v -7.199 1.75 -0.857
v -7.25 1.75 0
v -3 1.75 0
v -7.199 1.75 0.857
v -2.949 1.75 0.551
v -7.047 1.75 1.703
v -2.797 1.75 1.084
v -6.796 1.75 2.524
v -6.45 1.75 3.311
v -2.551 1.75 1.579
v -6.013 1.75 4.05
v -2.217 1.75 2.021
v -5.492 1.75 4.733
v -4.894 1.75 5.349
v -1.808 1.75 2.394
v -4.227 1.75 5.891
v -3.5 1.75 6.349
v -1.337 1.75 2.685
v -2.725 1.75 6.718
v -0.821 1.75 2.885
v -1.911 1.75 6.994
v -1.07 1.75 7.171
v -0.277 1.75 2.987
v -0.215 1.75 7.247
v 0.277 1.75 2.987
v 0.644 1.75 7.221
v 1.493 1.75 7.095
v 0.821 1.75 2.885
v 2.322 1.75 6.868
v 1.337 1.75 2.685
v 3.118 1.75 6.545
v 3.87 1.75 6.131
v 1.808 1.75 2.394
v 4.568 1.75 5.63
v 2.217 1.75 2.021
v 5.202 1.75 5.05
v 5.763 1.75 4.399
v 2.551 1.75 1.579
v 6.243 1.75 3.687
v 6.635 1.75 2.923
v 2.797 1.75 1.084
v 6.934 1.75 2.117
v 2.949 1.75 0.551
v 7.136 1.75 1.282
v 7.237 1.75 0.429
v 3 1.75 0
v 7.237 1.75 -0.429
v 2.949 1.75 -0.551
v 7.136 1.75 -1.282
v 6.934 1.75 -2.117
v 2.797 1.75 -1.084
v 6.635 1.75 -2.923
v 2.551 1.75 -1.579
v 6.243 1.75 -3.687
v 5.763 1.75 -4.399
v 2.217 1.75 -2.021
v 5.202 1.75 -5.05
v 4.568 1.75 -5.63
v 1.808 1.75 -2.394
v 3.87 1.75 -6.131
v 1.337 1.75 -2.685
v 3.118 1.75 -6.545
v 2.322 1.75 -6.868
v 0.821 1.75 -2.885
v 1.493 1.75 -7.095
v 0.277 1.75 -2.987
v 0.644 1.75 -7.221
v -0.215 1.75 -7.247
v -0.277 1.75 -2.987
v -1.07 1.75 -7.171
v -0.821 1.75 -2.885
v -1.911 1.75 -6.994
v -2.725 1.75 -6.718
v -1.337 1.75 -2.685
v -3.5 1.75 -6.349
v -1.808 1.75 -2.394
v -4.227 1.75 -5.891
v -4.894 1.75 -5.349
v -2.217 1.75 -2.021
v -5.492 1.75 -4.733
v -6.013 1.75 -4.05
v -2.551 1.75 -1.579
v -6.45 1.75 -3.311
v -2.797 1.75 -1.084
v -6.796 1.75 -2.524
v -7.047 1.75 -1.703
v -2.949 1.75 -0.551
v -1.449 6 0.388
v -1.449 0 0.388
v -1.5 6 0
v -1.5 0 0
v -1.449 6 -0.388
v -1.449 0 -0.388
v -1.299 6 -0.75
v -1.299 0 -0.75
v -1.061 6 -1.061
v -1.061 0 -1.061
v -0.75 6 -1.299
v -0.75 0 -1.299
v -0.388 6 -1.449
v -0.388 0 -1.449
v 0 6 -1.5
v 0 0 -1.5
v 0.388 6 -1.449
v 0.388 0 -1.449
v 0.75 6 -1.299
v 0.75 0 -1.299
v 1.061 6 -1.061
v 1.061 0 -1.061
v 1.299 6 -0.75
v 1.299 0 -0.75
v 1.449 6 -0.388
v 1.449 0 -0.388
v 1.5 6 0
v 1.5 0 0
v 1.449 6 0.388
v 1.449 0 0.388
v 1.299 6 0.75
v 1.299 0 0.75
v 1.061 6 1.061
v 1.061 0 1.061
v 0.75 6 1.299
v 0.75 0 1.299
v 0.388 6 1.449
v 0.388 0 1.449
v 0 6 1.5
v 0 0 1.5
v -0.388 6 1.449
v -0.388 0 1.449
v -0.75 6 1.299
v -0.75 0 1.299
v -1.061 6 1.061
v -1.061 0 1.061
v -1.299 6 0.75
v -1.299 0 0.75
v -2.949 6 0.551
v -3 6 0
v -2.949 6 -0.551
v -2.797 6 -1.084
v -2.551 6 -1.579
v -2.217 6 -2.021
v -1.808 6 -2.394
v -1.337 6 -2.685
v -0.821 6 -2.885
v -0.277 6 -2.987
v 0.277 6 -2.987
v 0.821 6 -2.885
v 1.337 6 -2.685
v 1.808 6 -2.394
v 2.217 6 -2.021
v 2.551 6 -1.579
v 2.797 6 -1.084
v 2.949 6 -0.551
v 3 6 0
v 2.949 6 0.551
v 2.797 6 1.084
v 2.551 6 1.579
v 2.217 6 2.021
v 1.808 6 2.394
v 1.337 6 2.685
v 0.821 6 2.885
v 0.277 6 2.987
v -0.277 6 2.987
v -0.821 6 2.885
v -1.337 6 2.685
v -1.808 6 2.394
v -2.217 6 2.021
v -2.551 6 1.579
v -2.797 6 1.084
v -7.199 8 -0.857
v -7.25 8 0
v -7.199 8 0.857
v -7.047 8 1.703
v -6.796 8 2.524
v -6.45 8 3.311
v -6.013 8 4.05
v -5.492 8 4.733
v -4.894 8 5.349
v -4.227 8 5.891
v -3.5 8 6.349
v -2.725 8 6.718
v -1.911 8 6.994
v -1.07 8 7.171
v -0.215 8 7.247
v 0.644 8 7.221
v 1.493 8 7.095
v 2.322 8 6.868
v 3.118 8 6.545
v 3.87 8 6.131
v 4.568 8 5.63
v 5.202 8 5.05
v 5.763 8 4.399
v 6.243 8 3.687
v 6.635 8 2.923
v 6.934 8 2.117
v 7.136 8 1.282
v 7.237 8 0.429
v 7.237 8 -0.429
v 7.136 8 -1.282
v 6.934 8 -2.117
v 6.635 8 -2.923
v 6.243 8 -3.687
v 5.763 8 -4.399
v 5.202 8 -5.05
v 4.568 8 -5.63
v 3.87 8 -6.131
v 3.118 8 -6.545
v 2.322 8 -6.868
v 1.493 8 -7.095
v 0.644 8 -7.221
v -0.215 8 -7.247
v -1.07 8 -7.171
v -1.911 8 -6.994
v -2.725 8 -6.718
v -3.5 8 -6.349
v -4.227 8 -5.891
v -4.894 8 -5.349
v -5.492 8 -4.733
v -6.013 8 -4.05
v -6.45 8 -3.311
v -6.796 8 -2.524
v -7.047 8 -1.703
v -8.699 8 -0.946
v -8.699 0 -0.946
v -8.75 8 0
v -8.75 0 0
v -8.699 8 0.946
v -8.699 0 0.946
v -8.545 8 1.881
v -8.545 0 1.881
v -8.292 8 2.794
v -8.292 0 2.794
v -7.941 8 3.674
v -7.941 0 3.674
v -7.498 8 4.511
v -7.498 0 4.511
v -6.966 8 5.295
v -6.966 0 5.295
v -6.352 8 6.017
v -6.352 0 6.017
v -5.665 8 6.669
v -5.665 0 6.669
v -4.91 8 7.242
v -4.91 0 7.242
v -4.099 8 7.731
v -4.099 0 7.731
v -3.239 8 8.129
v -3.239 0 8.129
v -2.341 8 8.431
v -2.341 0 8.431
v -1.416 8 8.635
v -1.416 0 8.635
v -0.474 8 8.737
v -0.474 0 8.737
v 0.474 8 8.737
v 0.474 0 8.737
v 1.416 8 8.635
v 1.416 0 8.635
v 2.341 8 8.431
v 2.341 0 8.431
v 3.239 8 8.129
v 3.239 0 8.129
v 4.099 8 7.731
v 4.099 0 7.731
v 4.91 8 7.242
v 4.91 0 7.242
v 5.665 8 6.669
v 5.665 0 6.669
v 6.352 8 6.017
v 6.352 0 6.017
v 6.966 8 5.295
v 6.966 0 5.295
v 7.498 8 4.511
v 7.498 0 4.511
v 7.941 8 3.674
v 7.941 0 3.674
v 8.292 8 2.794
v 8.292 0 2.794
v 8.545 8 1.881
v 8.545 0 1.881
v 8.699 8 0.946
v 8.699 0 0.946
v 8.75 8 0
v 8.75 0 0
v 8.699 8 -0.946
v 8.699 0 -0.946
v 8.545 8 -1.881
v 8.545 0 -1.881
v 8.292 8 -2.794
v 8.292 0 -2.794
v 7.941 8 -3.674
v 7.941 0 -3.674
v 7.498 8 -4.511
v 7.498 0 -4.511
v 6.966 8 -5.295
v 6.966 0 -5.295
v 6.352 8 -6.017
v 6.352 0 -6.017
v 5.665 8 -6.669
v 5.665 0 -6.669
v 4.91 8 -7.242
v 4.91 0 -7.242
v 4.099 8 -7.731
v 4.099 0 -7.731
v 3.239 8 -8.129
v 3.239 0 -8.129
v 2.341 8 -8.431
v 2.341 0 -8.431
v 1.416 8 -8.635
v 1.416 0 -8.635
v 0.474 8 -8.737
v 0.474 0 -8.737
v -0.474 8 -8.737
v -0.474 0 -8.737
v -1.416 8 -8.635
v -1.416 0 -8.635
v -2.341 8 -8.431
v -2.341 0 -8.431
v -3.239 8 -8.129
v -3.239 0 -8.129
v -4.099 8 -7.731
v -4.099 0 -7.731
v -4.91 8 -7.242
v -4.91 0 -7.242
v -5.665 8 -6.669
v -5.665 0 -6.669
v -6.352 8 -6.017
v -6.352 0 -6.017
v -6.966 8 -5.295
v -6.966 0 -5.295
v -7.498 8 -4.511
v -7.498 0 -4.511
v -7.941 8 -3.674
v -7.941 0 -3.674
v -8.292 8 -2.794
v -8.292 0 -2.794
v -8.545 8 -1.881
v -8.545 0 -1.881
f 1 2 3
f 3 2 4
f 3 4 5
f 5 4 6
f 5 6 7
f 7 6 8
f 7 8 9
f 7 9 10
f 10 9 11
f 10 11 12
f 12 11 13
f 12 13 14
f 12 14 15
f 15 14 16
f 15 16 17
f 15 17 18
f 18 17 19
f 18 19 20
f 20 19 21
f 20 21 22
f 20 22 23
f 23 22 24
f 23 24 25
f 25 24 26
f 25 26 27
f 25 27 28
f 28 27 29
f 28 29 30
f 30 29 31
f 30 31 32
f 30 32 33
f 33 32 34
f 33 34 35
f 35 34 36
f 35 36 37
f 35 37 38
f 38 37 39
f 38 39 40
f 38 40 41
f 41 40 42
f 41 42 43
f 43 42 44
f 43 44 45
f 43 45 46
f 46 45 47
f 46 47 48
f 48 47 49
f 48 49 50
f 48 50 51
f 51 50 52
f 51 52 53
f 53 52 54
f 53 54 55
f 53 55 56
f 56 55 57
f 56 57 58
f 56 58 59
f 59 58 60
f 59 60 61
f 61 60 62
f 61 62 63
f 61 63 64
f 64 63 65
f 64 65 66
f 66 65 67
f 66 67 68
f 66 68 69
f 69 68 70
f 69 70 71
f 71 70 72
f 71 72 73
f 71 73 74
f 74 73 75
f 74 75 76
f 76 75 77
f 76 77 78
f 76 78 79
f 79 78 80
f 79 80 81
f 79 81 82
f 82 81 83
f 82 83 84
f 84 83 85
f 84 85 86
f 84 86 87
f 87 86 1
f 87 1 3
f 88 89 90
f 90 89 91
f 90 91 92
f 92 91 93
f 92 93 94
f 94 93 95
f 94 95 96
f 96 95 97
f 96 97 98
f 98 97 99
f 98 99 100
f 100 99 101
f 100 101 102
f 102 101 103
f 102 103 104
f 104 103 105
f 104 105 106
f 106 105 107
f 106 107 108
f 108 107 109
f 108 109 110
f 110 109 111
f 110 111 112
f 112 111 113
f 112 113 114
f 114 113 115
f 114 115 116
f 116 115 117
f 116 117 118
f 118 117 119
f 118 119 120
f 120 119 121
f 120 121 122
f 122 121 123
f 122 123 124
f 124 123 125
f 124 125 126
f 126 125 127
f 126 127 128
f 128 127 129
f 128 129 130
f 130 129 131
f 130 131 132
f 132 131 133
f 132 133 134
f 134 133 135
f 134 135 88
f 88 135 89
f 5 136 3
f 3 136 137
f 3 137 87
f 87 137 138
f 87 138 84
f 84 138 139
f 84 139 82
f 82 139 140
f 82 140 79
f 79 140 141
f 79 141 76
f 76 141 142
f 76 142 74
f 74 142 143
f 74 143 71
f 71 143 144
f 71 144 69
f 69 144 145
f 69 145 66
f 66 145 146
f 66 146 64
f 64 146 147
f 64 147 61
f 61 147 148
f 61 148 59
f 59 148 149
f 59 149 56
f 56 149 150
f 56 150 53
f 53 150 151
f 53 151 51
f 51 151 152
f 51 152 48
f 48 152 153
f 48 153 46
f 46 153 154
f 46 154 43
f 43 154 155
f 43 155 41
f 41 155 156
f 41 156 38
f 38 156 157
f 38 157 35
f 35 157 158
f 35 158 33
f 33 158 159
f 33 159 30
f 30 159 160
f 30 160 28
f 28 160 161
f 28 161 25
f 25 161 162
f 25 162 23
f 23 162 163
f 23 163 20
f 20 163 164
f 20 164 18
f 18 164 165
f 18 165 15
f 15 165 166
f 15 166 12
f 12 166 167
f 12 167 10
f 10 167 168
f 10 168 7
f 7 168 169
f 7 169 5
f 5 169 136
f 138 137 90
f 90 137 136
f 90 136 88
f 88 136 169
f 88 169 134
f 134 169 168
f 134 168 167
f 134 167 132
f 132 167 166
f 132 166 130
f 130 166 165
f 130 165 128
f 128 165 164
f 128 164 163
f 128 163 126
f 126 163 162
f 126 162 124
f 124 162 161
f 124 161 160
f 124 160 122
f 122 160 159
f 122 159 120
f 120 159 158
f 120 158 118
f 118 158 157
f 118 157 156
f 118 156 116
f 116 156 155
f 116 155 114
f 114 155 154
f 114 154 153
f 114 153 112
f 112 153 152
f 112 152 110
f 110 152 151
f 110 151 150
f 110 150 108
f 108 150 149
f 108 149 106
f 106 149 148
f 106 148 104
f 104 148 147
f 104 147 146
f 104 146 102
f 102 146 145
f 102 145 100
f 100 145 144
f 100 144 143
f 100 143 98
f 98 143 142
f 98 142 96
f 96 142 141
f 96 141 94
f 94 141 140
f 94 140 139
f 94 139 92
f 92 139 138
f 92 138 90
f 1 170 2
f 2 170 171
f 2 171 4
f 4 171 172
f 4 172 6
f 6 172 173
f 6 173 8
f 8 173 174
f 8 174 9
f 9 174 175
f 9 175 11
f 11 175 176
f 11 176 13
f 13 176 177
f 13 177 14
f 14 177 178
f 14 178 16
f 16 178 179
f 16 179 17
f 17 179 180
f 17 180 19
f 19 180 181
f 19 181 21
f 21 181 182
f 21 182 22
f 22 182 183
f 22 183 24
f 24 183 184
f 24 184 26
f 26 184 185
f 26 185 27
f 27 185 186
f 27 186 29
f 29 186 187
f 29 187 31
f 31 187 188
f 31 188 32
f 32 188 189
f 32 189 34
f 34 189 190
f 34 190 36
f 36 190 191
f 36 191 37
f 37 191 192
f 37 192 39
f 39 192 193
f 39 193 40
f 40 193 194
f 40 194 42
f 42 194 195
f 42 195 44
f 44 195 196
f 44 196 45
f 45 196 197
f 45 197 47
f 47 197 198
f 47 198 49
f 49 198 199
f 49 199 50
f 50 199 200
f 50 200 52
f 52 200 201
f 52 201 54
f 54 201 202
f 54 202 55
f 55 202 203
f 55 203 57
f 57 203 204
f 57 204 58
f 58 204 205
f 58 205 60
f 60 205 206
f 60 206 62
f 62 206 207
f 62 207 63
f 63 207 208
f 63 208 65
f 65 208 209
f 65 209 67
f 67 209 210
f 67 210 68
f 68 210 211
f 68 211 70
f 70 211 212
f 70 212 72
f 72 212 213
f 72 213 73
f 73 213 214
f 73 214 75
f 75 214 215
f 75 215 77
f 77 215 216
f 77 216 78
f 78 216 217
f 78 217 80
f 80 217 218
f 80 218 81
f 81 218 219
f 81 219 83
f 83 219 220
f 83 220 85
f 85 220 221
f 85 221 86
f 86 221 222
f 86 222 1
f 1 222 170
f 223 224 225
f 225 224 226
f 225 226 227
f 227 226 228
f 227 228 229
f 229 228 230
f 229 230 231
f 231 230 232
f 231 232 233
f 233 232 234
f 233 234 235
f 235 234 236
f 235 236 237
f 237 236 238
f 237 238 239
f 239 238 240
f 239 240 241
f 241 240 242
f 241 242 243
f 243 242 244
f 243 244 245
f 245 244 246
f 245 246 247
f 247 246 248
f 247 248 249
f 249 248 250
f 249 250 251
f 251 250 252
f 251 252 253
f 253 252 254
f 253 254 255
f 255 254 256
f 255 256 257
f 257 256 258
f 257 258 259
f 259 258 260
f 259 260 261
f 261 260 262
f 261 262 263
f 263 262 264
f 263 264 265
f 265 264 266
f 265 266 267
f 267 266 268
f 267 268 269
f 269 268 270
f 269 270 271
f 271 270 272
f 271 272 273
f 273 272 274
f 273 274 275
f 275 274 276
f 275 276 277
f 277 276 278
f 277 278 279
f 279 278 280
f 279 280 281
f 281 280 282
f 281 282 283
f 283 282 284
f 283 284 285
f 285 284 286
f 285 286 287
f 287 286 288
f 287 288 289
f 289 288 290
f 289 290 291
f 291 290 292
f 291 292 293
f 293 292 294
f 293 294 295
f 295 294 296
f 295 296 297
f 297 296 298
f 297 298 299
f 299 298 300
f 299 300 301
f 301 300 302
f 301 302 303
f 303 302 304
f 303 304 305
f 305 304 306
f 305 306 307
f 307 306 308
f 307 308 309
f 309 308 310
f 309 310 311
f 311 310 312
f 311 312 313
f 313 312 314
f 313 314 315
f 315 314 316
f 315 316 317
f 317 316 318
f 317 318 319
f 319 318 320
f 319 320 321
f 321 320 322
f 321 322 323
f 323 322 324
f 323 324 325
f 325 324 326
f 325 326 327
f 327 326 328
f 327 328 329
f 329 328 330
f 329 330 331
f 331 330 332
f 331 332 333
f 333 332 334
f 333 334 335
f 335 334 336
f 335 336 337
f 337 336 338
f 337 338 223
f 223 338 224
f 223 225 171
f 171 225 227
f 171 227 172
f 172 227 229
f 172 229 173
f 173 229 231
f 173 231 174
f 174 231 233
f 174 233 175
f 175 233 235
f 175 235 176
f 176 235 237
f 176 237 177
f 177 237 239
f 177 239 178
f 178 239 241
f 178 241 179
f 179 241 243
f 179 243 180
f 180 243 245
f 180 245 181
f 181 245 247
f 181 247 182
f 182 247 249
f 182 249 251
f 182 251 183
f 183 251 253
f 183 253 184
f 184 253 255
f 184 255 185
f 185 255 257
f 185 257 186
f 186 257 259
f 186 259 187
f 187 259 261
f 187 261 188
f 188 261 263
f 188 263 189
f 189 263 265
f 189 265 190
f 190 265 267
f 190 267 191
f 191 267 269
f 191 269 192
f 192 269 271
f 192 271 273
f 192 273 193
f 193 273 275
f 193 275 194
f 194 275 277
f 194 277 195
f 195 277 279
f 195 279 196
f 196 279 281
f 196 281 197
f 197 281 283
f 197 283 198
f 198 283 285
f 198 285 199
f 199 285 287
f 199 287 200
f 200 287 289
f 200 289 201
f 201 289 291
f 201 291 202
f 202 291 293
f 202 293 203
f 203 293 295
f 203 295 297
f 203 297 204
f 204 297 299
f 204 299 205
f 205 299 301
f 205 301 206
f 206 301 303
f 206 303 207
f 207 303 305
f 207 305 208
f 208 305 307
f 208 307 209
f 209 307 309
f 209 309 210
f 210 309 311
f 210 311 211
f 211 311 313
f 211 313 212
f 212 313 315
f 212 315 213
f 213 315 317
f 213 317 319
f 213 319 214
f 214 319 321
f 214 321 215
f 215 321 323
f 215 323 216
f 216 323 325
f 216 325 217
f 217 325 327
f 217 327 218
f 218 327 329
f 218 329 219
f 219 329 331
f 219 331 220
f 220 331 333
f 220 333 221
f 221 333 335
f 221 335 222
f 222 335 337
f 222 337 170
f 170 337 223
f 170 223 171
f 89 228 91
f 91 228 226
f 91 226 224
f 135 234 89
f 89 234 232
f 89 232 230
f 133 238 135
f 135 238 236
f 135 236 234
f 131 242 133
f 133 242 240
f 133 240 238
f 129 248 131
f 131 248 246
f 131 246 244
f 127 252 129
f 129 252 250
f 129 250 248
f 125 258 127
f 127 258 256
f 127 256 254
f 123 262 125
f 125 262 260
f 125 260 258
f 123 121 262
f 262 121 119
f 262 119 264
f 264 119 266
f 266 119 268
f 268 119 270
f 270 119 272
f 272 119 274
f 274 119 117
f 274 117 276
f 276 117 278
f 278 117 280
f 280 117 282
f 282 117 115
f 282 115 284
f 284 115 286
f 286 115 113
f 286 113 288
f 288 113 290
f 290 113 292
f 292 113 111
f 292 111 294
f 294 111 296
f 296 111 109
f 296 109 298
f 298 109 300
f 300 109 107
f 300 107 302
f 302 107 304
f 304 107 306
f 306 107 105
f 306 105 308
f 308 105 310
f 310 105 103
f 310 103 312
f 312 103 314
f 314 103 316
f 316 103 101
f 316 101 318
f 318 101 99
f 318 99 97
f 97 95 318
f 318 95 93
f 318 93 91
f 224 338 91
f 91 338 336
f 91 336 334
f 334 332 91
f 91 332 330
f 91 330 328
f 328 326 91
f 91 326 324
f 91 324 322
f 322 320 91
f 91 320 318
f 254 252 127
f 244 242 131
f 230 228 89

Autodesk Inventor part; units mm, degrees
ref_plane "YZ Plane" through (0, 0, 0) normal (1, 0, 0) x (0, 1, 0)
ref_plane "XZ Plane" through (0, 0, 0) normal (0, 1, 0) x (-1, 0, 0)
ref_plane "XY Plane" through (0, 0, 0) normal (0, 0, 1) x (1, 0, 0)
sketch "Эскиз1" plane through (0, 0, 0) normal (0, 1, 0) x (-1, 0, 0)
  circle A0 centre (0, 0) radius 8.75
  circle A1 centre (0, 0) radius 1.5
  circle A2 centre (0, 0) radius 3
  circle A3 centre (0, 0) radius 7.25
  point P0 (-0.5625, 2.9468)
  point P1 (-0.6797, 7.2181)
  point P2 (0.6797, 7.2181)
  point P3 (0.5625, 2.9468)
  dimension "d1" = 3
  dimension "d2" = 6
  dimension "d24" = 17.5
  dimension "d41" = 1.5
extrude "Выдавливание1" add sketch "Эскиз1" along normal blind 8 contours A0
extrude "Выдавливание7" add sketch "Эскиз1" along normal blind 6 contours A2
extrude "Выдавливание8" add sketch "Эскиз1" along normal blind 1.75 contours A3
properties part number "Колесо заднее"
